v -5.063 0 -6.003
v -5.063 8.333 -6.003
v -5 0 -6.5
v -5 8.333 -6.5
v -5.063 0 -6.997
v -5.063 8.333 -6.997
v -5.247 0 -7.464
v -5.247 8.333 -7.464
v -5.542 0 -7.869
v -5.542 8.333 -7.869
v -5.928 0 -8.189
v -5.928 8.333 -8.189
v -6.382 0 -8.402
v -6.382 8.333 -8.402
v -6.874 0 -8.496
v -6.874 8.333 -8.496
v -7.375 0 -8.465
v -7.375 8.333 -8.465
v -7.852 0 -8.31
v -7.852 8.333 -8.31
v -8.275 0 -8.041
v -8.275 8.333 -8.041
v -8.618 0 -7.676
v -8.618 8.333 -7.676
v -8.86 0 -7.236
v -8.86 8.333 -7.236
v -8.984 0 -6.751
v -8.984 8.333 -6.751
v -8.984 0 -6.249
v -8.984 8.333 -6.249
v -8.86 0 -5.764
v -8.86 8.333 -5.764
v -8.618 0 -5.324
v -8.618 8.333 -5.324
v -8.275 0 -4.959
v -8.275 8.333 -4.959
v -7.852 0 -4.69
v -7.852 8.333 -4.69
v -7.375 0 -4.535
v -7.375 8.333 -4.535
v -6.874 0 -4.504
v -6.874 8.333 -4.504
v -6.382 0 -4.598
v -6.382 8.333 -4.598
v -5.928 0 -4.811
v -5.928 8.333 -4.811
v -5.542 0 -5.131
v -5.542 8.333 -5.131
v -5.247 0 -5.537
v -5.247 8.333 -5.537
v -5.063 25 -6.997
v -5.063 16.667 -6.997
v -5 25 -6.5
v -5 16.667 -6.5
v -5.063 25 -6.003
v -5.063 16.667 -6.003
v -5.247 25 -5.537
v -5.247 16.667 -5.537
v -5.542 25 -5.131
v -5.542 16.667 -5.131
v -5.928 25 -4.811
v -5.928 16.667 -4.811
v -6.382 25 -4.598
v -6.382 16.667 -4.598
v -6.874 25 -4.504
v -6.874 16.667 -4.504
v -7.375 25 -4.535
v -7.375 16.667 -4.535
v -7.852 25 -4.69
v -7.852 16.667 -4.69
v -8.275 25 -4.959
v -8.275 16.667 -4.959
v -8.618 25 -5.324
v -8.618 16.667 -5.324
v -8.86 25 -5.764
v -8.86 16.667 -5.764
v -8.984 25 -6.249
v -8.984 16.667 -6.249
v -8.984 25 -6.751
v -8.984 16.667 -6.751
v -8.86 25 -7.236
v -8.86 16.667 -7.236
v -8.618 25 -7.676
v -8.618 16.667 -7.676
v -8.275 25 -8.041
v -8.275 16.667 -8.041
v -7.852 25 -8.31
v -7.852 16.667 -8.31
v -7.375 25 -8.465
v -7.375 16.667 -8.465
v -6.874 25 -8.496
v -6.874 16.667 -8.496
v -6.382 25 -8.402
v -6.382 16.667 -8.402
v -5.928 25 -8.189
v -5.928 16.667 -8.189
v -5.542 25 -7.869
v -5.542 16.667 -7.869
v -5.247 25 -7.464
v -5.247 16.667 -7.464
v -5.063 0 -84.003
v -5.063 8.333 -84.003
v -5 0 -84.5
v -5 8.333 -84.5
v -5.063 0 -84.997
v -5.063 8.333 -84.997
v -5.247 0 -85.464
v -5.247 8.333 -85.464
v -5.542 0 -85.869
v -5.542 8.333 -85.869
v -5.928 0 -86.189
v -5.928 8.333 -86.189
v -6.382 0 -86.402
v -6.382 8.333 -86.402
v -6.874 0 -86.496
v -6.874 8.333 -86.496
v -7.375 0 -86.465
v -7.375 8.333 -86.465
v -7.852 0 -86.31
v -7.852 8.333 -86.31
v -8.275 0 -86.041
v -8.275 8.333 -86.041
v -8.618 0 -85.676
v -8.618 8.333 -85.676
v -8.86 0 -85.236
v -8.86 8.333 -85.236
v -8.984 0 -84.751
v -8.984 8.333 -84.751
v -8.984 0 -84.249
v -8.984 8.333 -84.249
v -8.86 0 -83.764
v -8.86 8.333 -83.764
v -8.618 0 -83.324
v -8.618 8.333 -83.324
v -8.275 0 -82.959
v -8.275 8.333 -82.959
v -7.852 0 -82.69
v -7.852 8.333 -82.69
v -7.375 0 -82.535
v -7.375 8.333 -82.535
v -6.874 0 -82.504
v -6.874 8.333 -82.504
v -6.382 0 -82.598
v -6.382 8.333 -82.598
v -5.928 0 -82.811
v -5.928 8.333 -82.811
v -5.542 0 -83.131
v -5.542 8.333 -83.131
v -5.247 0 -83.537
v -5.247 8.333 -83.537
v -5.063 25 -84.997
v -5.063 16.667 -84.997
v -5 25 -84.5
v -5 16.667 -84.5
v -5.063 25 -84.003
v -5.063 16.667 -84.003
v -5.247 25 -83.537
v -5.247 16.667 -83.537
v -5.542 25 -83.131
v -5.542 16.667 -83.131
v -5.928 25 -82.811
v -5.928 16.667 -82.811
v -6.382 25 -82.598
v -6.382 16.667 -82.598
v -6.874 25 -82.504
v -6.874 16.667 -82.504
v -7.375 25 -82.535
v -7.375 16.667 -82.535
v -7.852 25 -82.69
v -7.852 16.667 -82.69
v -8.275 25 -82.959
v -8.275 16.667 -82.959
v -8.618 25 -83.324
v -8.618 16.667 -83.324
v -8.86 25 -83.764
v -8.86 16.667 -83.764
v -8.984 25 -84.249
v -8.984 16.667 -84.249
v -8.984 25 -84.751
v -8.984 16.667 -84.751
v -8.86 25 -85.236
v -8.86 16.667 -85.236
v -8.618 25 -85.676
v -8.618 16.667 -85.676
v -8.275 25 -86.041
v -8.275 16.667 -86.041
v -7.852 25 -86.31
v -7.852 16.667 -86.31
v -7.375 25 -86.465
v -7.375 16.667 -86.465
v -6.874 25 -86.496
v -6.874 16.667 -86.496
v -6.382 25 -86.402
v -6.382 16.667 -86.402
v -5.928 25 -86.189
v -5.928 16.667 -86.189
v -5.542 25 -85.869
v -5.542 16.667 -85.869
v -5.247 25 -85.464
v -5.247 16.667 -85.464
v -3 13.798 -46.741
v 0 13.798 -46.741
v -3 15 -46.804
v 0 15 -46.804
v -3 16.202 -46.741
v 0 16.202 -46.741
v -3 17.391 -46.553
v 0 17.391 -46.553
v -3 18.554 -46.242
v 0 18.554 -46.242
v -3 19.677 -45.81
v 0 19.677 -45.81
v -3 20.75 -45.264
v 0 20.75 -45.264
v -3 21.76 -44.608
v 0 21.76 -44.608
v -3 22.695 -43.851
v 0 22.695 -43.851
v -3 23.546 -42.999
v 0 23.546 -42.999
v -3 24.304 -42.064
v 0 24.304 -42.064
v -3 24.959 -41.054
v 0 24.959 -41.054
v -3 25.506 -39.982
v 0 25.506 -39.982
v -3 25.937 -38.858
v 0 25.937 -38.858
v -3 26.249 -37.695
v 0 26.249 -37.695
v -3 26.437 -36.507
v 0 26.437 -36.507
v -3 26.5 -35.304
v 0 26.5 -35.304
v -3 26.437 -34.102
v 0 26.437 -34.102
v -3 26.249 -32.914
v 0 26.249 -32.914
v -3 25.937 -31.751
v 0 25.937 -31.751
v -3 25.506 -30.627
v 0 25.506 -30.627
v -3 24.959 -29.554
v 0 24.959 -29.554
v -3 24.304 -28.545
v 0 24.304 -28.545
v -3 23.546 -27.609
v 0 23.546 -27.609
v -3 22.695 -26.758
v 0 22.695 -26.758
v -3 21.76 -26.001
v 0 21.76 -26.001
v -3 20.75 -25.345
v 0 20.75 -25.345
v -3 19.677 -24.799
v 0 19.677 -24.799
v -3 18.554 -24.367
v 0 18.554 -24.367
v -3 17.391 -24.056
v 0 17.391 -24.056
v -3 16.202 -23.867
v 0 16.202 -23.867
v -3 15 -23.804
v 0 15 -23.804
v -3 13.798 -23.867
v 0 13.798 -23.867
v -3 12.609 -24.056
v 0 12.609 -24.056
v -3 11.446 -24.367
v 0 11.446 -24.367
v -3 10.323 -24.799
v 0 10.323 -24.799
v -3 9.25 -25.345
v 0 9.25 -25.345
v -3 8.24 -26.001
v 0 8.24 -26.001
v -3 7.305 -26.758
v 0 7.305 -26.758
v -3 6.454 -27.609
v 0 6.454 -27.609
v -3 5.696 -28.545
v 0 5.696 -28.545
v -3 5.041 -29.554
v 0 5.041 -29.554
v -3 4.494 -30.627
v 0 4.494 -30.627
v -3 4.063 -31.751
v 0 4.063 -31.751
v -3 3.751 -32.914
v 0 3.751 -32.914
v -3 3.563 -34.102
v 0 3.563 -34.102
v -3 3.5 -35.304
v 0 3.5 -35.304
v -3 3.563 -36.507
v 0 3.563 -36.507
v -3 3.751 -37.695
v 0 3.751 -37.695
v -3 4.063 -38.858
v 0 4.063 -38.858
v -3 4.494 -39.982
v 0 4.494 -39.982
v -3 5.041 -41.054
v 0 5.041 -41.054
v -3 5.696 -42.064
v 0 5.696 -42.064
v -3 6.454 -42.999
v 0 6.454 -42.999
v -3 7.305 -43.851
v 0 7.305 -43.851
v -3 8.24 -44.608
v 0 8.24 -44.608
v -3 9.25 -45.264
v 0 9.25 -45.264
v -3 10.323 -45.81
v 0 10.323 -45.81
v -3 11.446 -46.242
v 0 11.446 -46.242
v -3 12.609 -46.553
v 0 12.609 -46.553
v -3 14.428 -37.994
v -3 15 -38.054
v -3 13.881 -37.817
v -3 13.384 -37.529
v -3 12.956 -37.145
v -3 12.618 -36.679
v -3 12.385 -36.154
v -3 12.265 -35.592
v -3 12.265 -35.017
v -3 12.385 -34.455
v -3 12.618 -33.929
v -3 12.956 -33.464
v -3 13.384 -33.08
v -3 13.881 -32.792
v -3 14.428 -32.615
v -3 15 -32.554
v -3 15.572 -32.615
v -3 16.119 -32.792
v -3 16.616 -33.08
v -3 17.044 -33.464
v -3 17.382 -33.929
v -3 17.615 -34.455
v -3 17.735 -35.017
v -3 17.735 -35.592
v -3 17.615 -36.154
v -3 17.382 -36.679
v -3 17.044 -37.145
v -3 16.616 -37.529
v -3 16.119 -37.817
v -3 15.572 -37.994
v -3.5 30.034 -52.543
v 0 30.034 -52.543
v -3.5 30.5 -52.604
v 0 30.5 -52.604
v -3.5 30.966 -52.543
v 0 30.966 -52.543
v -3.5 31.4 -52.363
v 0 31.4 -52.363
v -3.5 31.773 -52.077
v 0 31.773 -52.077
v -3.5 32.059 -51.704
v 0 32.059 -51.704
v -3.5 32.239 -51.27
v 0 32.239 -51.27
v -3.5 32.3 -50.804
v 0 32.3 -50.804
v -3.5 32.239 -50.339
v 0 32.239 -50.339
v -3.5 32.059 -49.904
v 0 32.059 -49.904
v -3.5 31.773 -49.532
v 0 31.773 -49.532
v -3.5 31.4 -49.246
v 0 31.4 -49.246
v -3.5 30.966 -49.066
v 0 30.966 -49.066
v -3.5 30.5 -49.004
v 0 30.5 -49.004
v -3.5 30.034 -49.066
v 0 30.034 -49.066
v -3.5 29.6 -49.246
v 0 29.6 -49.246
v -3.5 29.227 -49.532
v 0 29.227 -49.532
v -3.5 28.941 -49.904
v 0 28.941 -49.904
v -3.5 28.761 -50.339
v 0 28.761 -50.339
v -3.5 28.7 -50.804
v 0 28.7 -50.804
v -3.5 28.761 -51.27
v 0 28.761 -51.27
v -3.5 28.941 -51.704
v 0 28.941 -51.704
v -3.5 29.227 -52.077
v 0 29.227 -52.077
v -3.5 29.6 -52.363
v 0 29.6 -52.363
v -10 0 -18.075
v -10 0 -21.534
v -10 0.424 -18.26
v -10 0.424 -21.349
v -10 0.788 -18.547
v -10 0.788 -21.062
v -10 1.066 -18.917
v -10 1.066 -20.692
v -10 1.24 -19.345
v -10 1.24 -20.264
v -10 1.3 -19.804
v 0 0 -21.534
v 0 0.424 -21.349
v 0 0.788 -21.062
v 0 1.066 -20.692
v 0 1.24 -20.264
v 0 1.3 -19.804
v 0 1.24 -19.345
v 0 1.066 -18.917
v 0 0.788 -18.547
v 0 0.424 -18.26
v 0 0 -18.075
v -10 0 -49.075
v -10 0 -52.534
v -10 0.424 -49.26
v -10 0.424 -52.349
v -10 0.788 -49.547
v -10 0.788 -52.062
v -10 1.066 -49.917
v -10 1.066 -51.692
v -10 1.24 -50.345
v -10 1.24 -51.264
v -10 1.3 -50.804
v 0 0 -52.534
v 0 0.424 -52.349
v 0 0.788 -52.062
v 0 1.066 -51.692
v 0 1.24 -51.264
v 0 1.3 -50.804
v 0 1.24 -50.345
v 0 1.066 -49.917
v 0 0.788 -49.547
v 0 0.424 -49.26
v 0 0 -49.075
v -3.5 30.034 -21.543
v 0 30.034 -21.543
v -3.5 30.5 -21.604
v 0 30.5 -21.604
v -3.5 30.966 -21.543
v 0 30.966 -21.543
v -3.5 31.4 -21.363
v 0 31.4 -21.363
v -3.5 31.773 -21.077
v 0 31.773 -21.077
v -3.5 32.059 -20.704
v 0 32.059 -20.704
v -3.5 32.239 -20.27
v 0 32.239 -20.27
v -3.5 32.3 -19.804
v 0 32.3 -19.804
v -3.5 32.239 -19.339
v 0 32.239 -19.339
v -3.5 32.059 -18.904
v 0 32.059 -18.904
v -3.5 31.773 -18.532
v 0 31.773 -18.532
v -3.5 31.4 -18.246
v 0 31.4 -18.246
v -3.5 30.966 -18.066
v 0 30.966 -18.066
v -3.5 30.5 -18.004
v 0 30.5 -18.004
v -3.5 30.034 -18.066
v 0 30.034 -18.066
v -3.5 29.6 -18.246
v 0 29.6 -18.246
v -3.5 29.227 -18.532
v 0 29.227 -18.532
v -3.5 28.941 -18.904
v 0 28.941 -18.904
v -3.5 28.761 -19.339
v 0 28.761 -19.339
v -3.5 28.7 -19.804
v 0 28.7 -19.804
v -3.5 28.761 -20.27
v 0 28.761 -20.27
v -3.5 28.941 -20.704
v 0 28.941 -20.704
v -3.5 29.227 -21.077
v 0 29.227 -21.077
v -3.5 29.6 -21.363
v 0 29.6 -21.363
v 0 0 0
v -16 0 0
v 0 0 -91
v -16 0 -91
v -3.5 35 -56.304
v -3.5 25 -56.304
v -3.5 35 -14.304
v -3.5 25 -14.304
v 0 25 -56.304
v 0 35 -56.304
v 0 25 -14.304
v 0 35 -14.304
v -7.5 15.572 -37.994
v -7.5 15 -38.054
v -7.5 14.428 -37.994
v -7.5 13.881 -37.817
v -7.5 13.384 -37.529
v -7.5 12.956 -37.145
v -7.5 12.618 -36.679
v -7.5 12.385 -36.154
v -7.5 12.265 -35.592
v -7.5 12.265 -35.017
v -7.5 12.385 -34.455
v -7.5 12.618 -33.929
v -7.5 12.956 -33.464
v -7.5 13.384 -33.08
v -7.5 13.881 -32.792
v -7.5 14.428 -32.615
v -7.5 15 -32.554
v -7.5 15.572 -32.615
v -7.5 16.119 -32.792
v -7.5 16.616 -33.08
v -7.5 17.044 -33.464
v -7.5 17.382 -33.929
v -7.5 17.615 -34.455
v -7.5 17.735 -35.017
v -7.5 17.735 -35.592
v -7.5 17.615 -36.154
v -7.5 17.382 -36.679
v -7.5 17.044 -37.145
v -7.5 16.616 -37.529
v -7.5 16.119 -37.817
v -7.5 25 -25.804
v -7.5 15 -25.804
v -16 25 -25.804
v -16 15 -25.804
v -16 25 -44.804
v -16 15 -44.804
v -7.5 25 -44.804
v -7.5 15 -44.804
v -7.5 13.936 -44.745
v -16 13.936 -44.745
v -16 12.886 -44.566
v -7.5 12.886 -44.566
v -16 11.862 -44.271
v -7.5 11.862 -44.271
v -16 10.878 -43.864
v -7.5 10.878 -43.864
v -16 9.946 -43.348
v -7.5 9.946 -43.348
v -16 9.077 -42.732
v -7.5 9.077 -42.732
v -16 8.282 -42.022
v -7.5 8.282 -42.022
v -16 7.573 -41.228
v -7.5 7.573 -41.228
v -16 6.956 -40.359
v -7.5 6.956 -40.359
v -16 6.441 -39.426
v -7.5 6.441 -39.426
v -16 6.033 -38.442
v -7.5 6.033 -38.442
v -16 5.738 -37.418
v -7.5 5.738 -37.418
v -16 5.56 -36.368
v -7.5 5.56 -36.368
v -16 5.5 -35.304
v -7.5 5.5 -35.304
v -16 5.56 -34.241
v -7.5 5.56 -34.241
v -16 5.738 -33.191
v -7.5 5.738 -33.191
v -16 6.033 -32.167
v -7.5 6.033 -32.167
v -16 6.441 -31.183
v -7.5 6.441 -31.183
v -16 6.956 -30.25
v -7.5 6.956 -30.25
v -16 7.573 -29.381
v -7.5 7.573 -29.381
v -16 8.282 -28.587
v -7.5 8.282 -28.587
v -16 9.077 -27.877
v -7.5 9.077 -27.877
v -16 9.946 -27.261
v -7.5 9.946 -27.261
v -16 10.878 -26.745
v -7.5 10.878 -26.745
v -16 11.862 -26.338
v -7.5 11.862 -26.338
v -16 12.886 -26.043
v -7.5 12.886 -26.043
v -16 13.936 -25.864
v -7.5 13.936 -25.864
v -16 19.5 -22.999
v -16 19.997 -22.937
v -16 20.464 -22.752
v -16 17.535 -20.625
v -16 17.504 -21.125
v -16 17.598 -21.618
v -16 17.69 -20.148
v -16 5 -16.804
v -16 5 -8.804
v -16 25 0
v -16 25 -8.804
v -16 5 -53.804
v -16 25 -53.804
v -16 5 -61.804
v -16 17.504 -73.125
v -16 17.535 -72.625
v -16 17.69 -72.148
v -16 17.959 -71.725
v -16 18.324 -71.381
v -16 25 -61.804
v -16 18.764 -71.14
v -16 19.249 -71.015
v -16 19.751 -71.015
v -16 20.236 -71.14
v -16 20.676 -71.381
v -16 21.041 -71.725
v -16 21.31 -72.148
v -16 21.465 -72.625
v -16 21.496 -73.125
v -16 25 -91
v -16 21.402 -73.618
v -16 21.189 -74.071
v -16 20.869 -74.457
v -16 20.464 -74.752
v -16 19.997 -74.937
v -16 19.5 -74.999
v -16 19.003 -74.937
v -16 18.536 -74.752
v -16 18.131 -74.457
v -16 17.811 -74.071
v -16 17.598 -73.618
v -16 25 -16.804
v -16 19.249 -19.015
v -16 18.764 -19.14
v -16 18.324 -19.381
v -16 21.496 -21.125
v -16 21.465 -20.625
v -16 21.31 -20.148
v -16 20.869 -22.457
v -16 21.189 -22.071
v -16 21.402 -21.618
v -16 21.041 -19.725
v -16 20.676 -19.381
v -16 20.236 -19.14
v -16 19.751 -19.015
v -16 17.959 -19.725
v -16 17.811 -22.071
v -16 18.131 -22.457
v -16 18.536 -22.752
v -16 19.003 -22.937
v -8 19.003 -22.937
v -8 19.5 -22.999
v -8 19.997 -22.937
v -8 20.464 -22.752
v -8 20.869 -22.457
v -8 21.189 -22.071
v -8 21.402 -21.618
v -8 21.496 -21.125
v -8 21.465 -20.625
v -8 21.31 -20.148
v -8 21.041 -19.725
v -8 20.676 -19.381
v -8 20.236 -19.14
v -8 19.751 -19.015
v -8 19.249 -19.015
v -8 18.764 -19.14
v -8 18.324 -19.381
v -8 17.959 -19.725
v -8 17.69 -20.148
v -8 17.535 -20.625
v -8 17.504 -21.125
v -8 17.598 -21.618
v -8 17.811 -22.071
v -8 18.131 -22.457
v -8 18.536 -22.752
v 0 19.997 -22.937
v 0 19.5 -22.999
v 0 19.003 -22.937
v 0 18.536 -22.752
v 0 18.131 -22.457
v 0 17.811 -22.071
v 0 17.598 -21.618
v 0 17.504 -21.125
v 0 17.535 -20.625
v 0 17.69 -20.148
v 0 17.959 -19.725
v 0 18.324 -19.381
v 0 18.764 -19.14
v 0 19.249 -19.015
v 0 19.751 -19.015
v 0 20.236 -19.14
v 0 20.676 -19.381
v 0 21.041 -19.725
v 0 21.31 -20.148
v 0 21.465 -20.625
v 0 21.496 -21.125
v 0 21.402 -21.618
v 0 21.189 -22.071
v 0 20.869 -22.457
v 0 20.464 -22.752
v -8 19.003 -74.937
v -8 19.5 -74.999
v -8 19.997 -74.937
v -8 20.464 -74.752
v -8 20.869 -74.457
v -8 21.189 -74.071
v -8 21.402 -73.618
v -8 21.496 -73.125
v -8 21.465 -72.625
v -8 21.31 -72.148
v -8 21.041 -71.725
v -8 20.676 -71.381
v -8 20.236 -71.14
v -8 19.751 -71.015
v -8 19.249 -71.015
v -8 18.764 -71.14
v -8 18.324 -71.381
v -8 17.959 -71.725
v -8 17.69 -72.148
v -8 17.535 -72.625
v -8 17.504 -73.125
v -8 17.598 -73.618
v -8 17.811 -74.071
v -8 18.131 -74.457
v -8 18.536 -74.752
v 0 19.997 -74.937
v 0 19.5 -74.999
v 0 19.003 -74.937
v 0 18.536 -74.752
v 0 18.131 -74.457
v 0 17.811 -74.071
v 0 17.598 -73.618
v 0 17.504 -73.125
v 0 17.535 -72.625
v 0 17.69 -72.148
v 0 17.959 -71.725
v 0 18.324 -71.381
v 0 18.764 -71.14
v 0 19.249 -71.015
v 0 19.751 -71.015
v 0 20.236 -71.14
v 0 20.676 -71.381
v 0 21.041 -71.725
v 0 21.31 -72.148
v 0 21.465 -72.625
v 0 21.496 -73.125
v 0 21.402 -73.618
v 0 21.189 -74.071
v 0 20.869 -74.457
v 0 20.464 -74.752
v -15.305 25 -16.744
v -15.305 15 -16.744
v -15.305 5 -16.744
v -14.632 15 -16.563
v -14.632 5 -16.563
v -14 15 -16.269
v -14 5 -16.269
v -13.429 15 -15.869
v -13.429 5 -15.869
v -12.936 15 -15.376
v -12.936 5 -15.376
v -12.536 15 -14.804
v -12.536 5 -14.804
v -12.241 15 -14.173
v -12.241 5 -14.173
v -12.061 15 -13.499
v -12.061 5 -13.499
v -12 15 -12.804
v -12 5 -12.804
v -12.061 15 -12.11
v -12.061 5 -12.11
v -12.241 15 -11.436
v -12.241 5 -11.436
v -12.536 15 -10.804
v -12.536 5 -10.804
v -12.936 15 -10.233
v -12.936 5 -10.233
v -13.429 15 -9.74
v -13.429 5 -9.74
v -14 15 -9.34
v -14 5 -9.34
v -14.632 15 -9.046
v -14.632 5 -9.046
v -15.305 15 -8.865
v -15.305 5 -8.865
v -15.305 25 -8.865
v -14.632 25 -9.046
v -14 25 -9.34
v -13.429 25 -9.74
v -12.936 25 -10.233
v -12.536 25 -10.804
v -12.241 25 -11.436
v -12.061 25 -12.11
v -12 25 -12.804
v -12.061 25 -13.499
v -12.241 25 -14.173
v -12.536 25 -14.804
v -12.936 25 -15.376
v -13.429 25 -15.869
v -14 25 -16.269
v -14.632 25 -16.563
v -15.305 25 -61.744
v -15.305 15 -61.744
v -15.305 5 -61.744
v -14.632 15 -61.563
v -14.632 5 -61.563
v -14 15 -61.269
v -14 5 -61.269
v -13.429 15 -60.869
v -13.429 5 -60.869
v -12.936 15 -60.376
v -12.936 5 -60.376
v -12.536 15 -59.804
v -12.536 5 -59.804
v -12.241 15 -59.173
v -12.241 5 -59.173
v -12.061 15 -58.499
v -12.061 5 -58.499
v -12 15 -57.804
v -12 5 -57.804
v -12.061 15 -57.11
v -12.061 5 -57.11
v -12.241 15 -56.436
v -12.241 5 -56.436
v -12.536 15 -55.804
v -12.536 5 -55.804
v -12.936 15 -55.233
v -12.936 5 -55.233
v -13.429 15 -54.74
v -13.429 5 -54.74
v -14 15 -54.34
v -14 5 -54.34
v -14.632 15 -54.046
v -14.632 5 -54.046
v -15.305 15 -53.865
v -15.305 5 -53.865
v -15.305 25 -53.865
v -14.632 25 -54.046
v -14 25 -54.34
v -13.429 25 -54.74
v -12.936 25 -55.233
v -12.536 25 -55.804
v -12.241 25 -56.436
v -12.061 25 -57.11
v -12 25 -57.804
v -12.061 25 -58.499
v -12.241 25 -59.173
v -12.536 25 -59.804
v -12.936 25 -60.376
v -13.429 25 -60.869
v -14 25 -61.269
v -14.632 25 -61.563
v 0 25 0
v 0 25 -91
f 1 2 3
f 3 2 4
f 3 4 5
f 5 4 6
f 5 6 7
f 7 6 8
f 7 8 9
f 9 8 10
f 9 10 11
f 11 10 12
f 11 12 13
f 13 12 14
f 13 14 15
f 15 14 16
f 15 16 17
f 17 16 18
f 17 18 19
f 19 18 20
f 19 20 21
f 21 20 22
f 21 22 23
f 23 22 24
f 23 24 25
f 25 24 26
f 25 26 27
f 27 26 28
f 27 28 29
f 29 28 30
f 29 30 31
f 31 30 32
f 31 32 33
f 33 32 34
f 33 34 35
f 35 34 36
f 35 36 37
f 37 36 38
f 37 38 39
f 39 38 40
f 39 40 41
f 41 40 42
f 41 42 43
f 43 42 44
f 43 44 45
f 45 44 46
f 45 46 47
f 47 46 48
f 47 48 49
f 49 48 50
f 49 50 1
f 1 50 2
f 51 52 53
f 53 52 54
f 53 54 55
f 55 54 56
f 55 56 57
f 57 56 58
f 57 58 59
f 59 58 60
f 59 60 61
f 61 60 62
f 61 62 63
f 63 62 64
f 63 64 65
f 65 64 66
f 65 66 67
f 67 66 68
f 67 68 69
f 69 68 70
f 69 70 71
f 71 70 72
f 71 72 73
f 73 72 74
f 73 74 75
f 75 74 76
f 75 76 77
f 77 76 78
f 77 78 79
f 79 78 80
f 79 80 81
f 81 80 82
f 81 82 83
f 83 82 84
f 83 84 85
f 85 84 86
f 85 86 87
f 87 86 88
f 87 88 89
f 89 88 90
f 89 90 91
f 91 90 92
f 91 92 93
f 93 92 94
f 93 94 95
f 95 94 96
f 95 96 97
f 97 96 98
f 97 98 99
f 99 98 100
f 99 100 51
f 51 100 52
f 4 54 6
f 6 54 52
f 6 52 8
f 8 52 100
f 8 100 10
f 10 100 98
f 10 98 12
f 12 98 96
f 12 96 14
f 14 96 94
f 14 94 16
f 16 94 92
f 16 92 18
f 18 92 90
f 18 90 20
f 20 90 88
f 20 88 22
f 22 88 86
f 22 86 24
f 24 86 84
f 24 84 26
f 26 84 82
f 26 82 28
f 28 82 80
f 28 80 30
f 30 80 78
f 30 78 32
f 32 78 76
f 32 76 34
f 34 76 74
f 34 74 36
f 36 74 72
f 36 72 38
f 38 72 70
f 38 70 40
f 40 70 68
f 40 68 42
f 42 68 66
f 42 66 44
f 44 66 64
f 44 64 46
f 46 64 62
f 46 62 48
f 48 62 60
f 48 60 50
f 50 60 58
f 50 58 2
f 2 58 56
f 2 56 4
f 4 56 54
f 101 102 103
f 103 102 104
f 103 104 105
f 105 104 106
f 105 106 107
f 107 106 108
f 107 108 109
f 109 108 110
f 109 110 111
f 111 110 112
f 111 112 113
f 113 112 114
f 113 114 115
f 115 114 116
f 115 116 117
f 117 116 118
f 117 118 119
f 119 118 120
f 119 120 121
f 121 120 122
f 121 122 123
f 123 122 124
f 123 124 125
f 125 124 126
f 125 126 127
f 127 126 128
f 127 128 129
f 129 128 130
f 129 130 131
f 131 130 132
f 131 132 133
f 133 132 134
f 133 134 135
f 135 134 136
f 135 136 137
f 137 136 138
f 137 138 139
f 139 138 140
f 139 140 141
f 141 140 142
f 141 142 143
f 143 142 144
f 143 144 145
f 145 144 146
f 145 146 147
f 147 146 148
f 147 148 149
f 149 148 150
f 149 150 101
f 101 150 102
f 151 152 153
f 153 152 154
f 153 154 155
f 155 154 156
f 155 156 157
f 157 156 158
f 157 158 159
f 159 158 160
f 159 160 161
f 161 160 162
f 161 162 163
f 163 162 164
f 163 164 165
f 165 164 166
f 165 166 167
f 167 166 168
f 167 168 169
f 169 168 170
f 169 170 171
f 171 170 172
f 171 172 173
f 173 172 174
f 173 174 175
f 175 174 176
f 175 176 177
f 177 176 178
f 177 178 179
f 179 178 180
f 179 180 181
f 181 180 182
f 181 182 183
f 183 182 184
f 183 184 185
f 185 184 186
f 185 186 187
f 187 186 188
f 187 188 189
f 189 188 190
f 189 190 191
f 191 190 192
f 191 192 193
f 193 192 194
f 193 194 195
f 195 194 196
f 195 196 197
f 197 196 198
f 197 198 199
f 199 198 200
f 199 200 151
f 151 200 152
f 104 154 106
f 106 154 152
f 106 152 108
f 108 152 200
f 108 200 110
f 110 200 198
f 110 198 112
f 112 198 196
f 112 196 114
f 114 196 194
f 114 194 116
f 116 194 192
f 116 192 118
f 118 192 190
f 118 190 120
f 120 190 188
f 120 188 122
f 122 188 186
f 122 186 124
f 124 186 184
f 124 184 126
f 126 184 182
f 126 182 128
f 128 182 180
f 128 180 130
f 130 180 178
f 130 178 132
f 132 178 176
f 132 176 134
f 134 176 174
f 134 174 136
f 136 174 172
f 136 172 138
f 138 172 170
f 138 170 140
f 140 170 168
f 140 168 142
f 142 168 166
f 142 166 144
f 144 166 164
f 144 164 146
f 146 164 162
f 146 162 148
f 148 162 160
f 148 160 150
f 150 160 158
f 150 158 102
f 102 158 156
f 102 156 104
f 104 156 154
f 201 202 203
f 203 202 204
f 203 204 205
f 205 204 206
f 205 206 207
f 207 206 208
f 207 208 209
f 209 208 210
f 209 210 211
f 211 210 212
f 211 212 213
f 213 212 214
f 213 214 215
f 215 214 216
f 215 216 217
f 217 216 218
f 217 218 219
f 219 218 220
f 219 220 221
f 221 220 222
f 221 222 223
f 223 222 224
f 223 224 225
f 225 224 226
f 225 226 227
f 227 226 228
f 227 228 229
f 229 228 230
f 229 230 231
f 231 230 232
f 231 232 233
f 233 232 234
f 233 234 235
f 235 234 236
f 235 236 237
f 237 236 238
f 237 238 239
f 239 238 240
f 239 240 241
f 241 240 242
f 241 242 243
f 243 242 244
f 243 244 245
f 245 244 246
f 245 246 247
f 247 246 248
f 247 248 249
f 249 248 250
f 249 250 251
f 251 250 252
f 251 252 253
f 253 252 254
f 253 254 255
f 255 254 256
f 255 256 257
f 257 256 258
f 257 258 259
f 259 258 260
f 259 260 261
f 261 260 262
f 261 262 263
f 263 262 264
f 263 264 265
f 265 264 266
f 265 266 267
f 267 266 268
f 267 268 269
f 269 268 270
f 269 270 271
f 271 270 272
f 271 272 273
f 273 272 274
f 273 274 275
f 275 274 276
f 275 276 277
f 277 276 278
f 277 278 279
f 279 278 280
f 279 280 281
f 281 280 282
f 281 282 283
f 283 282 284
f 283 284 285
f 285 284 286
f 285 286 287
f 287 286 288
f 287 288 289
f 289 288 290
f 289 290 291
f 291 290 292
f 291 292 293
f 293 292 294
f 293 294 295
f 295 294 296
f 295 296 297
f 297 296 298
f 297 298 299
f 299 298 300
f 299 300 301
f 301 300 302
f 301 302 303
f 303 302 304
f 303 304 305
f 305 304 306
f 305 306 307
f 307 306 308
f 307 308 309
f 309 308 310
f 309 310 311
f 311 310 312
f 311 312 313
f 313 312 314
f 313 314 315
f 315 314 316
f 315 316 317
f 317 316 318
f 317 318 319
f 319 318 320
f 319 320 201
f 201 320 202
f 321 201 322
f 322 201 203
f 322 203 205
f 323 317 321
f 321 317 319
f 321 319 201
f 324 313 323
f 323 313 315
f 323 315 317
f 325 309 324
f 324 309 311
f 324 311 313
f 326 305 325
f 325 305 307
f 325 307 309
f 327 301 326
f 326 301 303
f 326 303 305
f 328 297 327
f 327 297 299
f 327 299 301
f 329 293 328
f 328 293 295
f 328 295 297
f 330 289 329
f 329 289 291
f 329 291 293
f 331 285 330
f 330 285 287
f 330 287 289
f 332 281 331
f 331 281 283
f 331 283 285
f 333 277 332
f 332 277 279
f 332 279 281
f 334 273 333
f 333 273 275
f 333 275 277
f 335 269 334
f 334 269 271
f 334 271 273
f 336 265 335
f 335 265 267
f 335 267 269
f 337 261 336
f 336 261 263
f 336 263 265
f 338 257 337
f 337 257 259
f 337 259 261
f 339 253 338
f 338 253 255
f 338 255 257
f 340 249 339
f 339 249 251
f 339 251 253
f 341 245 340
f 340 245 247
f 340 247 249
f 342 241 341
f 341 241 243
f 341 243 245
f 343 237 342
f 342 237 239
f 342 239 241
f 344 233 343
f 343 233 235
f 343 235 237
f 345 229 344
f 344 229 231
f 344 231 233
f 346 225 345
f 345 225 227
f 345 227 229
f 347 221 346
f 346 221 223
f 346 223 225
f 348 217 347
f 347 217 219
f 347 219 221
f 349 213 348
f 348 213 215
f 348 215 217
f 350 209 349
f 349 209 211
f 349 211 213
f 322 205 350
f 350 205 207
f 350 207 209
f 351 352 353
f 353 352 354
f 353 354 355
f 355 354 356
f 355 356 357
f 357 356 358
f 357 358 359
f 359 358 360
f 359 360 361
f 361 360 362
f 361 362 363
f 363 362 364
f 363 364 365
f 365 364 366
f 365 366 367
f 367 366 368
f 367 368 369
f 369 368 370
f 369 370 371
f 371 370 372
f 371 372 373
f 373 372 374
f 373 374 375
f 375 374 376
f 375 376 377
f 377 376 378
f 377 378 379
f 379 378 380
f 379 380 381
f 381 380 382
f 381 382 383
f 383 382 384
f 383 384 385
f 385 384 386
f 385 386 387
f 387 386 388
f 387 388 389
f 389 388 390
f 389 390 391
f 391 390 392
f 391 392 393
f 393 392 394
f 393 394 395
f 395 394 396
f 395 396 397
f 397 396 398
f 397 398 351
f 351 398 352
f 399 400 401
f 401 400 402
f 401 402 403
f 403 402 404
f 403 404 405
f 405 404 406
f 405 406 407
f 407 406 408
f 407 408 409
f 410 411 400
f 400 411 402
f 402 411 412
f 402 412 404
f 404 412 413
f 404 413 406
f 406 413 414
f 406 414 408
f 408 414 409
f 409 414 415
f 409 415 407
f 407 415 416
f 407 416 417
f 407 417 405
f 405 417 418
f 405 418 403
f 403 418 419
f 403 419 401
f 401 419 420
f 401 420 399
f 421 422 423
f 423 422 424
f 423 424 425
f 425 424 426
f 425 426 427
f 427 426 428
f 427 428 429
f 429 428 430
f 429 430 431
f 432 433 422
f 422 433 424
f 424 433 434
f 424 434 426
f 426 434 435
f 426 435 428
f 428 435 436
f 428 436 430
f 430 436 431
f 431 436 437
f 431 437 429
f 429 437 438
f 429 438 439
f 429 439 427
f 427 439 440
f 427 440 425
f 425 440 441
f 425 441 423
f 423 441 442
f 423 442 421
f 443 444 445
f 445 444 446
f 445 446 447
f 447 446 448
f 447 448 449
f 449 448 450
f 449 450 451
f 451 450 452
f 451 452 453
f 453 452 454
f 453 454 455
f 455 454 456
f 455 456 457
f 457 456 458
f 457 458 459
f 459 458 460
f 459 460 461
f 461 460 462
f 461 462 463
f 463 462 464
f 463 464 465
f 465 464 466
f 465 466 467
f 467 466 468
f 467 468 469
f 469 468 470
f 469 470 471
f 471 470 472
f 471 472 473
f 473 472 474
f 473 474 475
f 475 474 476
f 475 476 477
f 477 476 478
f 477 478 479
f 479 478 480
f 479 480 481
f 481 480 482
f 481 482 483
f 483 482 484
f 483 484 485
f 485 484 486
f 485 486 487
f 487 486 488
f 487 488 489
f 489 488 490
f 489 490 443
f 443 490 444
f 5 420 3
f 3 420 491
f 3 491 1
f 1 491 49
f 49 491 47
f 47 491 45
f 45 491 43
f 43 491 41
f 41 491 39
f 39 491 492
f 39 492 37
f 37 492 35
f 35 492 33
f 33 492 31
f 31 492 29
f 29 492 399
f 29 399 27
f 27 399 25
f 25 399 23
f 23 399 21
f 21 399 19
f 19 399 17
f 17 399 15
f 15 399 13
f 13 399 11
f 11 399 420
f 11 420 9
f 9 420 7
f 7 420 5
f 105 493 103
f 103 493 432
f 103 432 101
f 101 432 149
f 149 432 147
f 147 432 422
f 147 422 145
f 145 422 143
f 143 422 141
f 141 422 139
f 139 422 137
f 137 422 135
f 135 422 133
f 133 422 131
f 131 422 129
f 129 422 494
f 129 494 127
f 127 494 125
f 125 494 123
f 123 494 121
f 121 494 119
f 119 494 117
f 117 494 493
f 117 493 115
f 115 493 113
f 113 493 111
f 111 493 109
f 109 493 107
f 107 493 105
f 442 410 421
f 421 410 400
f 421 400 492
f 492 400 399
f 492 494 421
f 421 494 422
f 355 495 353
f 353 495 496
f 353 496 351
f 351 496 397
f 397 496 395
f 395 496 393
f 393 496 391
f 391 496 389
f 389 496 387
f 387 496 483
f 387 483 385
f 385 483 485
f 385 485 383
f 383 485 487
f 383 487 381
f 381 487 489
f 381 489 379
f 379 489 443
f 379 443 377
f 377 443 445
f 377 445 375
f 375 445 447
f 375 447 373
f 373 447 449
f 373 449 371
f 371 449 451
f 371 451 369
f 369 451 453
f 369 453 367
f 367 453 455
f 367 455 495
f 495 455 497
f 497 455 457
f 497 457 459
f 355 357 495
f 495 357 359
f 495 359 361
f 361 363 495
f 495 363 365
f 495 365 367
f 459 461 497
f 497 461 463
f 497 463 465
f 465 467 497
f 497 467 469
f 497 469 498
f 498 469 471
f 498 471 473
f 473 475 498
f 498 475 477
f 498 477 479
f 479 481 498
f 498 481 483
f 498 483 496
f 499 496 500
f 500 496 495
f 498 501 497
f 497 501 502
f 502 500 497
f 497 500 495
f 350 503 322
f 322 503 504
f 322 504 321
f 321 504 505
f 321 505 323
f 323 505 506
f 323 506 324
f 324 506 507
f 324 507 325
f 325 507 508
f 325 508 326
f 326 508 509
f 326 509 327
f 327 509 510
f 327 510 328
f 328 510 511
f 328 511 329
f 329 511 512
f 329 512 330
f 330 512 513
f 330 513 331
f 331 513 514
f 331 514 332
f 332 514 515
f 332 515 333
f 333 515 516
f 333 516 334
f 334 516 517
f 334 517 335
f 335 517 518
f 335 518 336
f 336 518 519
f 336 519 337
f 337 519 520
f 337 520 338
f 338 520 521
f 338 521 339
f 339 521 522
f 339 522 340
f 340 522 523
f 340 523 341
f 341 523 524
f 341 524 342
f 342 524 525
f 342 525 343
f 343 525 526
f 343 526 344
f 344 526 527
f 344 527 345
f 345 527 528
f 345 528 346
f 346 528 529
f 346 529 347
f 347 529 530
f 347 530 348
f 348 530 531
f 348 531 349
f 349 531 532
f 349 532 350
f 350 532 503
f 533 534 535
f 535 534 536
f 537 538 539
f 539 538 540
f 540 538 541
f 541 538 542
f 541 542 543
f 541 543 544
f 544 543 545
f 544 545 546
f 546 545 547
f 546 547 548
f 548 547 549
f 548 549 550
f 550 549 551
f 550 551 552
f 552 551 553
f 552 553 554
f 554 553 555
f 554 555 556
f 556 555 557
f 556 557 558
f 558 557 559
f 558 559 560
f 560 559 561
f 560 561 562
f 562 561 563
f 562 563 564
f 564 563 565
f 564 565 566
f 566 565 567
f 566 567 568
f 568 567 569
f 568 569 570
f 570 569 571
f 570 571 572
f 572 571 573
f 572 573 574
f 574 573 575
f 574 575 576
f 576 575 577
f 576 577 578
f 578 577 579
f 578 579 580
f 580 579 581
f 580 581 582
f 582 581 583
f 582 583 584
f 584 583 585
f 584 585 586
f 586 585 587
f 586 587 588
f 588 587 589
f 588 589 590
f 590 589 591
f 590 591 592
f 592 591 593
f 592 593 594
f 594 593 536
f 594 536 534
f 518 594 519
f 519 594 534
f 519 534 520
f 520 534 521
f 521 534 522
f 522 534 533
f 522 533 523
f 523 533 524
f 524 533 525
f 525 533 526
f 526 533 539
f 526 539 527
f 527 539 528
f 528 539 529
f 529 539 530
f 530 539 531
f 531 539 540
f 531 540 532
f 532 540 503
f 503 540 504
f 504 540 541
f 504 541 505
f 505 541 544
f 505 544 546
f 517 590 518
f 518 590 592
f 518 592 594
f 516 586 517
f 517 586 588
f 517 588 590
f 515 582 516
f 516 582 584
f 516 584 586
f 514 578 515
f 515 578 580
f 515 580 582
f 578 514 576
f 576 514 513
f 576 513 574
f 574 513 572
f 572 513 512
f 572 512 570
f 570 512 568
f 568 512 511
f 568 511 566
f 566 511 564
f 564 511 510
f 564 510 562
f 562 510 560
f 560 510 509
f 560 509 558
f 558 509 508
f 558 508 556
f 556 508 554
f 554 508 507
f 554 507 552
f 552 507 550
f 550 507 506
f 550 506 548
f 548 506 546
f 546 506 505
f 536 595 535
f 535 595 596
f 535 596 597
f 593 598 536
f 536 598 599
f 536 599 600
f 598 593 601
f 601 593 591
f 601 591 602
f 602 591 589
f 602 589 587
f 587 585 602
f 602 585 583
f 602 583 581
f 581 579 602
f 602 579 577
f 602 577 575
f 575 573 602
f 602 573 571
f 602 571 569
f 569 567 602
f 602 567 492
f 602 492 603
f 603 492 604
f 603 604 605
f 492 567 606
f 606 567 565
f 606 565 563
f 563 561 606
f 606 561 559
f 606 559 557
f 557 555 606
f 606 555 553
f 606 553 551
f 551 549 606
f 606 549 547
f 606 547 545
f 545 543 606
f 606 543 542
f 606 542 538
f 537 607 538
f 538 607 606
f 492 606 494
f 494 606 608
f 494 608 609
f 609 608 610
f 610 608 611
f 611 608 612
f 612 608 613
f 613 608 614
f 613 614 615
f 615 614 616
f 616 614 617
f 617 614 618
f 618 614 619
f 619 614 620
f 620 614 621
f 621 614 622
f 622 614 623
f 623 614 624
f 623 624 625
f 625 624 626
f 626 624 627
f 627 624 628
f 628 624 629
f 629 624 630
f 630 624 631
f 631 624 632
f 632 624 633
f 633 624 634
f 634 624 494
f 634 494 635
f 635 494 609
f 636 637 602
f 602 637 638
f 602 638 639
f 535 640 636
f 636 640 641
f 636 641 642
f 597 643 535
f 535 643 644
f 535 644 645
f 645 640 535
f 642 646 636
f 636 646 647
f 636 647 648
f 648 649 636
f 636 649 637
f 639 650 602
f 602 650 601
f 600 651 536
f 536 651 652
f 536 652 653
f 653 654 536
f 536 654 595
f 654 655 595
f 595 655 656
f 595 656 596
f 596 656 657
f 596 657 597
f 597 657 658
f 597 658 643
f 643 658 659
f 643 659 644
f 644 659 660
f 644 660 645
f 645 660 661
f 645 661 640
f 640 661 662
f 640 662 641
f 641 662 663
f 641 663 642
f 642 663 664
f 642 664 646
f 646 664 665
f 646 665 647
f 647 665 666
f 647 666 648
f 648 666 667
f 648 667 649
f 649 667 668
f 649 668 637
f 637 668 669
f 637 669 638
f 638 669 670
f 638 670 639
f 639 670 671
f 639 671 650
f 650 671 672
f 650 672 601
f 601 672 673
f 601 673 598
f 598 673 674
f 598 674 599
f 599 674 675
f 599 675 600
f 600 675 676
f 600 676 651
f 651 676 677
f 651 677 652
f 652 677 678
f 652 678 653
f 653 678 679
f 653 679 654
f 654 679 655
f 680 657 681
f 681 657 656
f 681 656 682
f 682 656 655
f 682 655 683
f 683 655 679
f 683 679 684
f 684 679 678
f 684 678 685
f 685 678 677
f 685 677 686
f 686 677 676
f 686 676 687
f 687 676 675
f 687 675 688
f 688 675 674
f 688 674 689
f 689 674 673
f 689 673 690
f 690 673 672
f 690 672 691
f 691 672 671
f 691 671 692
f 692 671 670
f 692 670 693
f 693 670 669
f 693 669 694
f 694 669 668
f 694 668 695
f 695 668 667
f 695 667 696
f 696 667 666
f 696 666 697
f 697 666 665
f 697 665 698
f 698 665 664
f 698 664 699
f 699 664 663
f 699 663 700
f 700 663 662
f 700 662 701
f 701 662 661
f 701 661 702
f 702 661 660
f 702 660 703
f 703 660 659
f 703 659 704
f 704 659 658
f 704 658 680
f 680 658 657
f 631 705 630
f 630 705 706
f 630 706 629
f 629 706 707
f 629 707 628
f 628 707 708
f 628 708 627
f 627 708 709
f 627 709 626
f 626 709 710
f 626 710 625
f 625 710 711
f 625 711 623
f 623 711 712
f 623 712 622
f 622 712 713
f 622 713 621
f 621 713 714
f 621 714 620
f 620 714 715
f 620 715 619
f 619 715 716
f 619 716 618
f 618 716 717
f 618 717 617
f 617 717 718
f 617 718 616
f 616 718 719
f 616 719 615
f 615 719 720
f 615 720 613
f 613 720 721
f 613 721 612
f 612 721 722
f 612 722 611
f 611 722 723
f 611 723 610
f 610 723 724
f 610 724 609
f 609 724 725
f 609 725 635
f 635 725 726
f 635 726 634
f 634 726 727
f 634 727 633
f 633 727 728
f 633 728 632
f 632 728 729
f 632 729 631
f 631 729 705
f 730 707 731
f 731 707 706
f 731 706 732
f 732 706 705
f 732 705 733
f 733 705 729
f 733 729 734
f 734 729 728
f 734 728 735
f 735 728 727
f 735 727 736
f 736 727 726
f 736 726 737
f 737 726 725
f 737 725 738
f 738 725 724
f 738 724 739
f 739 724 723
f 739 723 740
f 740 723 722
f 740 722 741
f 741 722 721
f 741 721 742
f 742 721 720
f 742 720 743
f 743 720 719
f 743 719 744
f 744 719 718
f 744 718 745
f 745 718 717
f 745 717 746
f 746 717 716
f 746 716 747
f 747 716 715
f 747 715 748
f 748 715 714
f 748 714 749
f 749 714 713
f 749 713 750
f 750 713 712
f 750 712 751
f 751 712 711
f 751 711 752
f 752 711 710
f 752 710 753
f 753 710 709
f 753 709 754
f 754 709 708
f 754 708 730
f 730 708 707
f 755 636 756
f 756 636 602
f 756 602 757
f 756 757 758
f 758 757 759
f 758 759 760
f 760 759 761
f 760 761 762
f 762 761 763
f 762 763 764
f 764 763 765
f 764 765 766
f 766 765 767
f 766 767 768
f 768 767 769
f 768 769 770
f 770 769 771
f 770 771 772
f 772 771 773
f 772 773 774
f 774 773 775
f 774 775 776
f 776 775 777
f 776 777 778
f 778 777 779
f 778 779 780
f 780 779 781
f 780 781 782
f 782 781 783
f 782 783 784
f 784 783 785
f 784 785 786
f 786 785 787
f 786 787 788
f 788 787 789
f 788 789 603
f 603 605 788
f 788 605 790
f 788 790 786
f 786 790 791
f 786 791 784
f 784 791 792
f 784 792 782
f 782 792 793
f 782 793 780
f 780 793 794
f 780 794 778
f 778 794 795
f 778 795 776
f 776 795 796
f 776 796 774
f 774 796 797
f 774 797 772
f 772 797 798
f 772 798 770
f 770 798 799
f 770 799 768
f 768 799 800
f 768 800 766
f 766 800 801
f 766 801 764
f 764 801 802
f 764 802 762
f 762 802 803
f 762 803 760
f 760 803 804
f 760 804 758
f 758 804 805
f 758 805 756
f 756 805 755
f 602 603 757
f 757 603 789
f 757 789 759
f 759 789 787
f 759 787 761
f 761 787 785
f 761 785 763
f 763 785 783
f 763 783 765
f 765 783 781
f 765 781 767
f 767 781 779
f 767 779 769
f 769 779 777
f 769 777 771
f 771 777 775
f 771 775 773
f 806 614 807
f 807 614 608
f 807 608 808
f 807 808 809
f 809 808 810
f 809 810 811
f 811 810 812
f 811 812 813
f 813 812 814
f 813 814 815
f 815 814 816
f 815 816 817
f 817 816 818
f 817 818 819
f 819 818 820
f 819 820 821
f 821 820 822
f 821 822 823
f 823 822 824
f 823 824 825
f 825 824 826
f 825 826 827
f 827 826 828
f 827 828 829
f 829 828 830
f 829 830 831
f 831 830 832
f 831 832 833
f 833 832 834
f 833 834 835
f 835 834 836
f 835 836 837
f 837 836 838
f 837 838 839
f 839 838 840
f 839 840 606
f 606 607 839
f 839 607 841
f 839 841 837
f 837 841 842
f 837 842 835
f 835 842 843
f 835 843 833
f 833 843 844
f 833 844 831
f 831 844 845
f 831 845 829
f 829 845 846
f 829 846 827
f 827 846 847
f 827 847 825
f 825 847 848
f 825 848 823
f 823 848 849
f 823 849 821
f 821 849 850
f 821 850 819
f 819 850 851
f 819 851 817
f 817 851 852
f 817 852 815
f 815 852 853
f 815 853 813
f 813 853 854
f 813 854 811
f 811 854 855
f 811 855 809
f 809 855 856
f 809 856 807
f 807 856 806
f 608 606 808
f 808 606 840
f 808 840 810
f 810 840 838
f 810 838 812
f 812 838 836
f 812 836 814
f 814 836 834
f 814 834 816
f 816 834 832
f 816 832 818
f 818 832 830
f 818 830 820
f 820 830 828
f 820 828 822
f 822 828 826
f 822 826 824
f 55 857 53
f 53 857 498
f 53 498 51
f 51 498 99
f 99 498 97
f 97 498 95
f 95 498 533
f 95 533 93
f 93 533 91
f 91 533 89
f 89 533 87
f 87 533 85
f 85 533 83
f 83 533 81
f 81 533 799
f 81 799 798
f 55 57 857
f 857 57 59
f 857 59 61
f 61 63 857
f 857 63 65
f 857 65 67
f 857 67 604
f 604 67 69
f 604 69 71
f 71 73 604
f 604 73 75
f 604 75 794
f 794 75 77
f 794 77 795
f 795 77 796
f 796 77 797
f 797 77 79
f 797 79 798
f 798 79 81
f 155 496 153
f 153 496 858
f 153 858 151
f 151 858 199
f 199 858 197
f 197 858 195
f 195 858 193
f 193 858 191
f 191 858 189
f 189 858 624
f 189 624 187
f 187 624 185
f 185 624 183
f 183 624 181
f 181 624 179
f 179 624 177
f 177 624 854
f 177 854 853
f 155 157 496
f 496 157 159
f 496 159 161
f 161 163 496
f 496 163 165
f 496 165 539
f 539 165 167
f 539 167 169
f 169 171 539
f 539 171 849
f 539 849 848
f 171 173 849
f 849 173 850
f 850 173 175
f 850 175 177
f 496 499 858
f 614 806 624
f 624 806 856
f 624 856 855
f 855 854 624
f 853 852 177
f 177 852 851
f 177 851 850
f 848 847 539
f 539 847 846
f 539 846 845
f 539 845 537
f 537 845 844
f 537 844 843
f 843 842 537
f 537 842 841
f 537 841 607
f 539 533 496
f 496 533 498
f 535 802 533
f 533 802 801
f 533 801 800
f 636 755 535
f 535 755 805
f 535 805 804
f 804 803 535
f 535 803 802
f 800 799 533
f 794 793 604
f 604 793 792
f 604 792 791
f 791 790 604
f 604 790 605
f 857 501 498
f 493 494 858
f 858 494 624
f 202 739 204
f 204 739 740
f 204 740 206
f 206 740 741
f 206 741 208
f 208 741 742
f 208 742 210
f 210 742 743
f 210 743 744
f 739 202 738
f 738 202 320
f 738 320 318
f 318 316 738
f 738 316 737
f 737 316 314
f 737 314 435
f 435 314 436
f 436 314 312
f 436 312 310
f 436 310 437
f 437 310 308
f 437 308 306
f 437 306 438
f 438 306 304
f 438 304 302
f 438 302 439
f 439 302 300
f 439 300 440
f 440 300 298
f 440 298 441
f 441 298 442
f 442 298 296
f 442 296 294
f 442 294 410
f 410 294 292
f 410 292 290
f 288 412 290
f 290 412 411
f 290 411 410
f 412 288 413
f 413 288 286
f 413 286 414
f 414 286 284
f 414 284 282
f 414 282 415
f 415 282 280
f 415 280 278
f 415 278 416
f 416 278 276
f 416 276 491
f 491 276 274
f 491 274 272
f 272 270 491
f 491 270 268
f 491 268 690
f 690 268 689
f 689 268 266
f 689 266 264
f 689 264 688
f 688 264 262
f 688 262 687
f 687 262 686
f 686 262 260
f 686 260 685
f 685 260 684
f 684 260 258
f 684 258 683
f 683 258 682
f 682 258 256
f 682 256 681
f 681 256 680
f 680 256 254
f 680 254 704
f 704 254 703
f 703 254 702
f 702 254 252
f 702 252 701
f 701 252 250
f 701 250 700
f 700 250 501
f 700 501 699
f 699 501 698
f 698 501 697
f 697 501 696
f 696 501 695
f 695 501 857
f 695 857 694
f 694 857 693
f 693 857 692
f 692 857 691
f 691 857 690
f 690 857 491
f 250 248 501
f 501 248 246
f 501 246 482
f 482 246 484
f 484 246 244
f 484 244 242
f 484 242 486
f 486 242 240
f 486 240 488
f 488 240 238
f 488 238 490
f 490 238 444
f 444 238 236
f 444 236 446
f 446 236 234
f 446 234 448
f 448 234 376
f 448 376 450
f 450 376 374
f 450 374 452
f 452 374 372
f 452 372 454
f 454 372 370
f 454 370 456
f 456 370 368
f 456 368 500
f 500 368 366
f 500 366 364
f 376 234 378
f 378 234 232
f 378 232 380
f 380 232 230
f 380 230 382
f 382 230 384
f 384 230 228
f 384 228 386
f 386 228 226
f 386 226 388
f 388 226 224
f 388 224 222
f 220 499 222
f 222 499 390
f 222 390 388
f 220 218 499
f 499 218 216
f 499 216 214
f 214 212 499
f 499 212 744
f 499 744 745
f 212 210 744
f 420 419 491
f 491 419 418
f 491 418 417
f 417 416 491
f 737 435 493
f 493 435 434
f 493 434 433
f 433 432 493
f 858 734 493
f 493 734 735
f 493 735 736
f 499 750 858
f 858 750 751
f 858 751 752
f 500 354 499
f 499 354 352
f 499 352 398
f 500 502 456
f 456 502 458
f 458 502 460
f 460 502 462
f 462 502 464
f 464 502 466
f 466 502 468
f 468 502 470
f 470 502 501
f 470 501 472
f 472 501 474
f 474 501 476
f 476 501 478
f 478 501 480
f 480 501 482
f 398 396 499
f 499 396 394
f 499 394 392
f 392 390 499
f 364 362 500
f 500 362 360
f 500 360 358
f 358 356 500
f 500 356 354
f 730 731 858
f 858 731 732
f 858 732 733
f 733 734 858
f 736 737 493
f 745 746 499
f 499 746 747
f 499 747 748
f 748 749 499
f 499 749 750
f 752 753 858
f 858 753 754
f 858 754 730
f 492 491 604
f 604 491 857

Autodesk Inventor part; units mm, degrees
ref_plane "YZ Plane" through (0, 0, 0) normal (1, 0, 0) x (0, 1, 0)
ref_plane "XZ Plane" through (0, 0, 0) normal (0, 1, 0) x (-1, 0, 0)
ref_plane "XY Plane" through (0, 0, 0) normal (0, 0, 1) x (1, 0, 0)
sketch "Sketch1" plane through (0, 0, 0) normal (0, 1, 0) x (-1, 0, 0)
  line L0 (0, 0) -> (16, 0)
  line L1 (16, 0) -> (16, -91)
  line L2 (16, -91) -> (0, -91)
  line L3 (0, -91) -> (0, 0)
  dimension "d0" = 16
  dimension "d1" = 91
extrude "Extrusion1" add sketch "Sketch1" along normal blind 25
sketch "Sketch2" plane through (0, 25, 0) normal (0, 1, 0) x (1, 0, 0)
  line L0 (-16, 91) -> (-16, 0) projected
  circle A0 centre (-16, 12.8045) radius 4
  circle A1 centre (-16, 57.8045) radius 4
  point P0 (0, 0)
  dimension "d4" = 8
  dimension "d5" = 8
  dimension "d6" = 45
extrude "Extrusion2" cut sketch "Sketch2" against normal blind 20
sketch "Sketch3" plane through (0, 25, 0) normal (0, 1, 0) x (1, 0, 0)
  circle A0 centre (-7, 6.5) radius 2
  circle A1 centre (-7, 84.5) radius 2
  line L0 (-16, 8.8045) -> (-16, 0) projected
  line L1 (-16, 53.8045) -> (-16, 16.8045) projected
  line L2 (-16, 8.8045) -> (-16, 61.8045) projected
  point P0 (0, 0)
  point P1 (-16, 3)
  point P2 (-16, 88)
  dimension "d10" = 4
  dimension "d12" = 4
  dimension "d15" = 9
  dimension "d17" = 9
  dimension "d18" = 6.5
ref_plane "Work Plane1" through (0, 0, -3) normal (1, 0, 0) x (0, 0, -1)
sketch "Sketch4" plane through (0, 0, -3) normal (1, 0, 0) x (0, 0, -1)
  circle A0 centre (17.9995, 19.5) radius 2
  circle A1 centre (69.9995, 19.5) radius 2
  line L0 (-3, 0) -> (88, 0) projected
  dimension "d21" = 4
  dimension "d22" = 4
  dimension "d34" = 52
  dimension "d59" = 19.5
  dimension "d60" = 19.5
extrude "Extrusion4" cut sketch "Sketch4" against normal blind 30
sketch "Sketch5" plane through (-16, 0, -91) normal (-1, 0, 0) x (0, 0, 1)
  point P0 (91, 0)
sketch "Sketch6" plane through (-16, 0, -91) normal (-1, 0, 0) x (0, 0, 1)
  arc A0 (46.1955, 15) -> (65.1955, 15) centre (55.6955, 15) ccw
  line L0 (37.1955, 25) -> (37.1955, 5) projected
  line L1 (37.1955, 25) -> (74.1955, 25) projected
  line L2 (46.1955, 15) -> (46.1955, 30.0529)
  line L3 (46.1955, 30.0529) -> (65.1955, 30.0529)
  line L4 (65.1955, 30.0529) -> (65.1955, 15)
  point P0 (91, 0)
  dimension "d25" = 19
  dimension "d26" = 18.5
  dimension "d27" = 10
extrude "Extrusion5" cut sketch "Sketch6" against normal blind 8.5
sketch "Sketch7" plane through (-7.5, 0, -91) normal (-1, 0, 0) x (0, 0, 1)
  circle A0 centre (55.6955, 15) radius 2.75
  line L0 (37.1955, 25) -> (37.1955, 5) projected
  point P0 (91, 0)
  dimension "d30" = 5.5
  dimension "d31" = 18.5
extrude "Extrusion6" cut sketch "Sketch7" against normal blind 30
sketch "Sketch9" plane through (0, 25, 0) normal (0, 1, 0) x (1, 0, 0)
  line L0 (0, 14.304) -> (-3.5, 14.304)
  line L1 (-3.5, 14.304) -> (-3.5, 56.304)
  line L2 (-3.5, 56.304) -> (0, 56.304)
  line L3 (0, 56.304) -> (0, 14.304)
  line L4 (-16, 0) -> (0, 0) projected
  dimension "d48" = 3.5
  dimension "d49" = 42
  dimension "d50" = 14.304
extrude "Extrusion7" add sketch "Sketch9" along normal blind 10
sketch "Sketch8" plane through (0, 0, 0) normal (1, 0, 0) x (0, 0, -1)
  circle A0 centre (19.8045, -0.5) radius 1.8
  circle A1 centre (50.8045, -0.5) radius 1.8
  circle A2 centre (50.8045, 30.5) radius 1.8
  circle A3 centre (19.8045, 30.5) radius 1.8
  circle A4 centre (35.3045, 15) radius 2.75 projected
  circle A5 centre (35.3045, 15) radius 11.5
  point P0 (0, 0)
  dimension "d35" = 3.6
  dimension "d36" = 3.6
  dimension "d37" = 3.6
  dimension "d38" = 3.6
  dimension "d39" = 31
  dimension "d40" = 31
  dimension "d41" = 31
  dimension "d42" = 31
  dimension "d43" = 0
  dimension "d44" = 23
  dimension "d45" = 15.5
  dimension "d46" = 15.5
  dimension "d47" = 0
extrude "Extrusion8" cut sketch "Sketch8" against normal blind 10 contours A0 | A1 | A2 | A3
extrude "Extrusion9" cut sketch "Sketch8" against normal blind 3 contours A5
extrude "Extrusion10" cut sketch "Sketch3" against normal blind 30
properties part number "motorradrod"
